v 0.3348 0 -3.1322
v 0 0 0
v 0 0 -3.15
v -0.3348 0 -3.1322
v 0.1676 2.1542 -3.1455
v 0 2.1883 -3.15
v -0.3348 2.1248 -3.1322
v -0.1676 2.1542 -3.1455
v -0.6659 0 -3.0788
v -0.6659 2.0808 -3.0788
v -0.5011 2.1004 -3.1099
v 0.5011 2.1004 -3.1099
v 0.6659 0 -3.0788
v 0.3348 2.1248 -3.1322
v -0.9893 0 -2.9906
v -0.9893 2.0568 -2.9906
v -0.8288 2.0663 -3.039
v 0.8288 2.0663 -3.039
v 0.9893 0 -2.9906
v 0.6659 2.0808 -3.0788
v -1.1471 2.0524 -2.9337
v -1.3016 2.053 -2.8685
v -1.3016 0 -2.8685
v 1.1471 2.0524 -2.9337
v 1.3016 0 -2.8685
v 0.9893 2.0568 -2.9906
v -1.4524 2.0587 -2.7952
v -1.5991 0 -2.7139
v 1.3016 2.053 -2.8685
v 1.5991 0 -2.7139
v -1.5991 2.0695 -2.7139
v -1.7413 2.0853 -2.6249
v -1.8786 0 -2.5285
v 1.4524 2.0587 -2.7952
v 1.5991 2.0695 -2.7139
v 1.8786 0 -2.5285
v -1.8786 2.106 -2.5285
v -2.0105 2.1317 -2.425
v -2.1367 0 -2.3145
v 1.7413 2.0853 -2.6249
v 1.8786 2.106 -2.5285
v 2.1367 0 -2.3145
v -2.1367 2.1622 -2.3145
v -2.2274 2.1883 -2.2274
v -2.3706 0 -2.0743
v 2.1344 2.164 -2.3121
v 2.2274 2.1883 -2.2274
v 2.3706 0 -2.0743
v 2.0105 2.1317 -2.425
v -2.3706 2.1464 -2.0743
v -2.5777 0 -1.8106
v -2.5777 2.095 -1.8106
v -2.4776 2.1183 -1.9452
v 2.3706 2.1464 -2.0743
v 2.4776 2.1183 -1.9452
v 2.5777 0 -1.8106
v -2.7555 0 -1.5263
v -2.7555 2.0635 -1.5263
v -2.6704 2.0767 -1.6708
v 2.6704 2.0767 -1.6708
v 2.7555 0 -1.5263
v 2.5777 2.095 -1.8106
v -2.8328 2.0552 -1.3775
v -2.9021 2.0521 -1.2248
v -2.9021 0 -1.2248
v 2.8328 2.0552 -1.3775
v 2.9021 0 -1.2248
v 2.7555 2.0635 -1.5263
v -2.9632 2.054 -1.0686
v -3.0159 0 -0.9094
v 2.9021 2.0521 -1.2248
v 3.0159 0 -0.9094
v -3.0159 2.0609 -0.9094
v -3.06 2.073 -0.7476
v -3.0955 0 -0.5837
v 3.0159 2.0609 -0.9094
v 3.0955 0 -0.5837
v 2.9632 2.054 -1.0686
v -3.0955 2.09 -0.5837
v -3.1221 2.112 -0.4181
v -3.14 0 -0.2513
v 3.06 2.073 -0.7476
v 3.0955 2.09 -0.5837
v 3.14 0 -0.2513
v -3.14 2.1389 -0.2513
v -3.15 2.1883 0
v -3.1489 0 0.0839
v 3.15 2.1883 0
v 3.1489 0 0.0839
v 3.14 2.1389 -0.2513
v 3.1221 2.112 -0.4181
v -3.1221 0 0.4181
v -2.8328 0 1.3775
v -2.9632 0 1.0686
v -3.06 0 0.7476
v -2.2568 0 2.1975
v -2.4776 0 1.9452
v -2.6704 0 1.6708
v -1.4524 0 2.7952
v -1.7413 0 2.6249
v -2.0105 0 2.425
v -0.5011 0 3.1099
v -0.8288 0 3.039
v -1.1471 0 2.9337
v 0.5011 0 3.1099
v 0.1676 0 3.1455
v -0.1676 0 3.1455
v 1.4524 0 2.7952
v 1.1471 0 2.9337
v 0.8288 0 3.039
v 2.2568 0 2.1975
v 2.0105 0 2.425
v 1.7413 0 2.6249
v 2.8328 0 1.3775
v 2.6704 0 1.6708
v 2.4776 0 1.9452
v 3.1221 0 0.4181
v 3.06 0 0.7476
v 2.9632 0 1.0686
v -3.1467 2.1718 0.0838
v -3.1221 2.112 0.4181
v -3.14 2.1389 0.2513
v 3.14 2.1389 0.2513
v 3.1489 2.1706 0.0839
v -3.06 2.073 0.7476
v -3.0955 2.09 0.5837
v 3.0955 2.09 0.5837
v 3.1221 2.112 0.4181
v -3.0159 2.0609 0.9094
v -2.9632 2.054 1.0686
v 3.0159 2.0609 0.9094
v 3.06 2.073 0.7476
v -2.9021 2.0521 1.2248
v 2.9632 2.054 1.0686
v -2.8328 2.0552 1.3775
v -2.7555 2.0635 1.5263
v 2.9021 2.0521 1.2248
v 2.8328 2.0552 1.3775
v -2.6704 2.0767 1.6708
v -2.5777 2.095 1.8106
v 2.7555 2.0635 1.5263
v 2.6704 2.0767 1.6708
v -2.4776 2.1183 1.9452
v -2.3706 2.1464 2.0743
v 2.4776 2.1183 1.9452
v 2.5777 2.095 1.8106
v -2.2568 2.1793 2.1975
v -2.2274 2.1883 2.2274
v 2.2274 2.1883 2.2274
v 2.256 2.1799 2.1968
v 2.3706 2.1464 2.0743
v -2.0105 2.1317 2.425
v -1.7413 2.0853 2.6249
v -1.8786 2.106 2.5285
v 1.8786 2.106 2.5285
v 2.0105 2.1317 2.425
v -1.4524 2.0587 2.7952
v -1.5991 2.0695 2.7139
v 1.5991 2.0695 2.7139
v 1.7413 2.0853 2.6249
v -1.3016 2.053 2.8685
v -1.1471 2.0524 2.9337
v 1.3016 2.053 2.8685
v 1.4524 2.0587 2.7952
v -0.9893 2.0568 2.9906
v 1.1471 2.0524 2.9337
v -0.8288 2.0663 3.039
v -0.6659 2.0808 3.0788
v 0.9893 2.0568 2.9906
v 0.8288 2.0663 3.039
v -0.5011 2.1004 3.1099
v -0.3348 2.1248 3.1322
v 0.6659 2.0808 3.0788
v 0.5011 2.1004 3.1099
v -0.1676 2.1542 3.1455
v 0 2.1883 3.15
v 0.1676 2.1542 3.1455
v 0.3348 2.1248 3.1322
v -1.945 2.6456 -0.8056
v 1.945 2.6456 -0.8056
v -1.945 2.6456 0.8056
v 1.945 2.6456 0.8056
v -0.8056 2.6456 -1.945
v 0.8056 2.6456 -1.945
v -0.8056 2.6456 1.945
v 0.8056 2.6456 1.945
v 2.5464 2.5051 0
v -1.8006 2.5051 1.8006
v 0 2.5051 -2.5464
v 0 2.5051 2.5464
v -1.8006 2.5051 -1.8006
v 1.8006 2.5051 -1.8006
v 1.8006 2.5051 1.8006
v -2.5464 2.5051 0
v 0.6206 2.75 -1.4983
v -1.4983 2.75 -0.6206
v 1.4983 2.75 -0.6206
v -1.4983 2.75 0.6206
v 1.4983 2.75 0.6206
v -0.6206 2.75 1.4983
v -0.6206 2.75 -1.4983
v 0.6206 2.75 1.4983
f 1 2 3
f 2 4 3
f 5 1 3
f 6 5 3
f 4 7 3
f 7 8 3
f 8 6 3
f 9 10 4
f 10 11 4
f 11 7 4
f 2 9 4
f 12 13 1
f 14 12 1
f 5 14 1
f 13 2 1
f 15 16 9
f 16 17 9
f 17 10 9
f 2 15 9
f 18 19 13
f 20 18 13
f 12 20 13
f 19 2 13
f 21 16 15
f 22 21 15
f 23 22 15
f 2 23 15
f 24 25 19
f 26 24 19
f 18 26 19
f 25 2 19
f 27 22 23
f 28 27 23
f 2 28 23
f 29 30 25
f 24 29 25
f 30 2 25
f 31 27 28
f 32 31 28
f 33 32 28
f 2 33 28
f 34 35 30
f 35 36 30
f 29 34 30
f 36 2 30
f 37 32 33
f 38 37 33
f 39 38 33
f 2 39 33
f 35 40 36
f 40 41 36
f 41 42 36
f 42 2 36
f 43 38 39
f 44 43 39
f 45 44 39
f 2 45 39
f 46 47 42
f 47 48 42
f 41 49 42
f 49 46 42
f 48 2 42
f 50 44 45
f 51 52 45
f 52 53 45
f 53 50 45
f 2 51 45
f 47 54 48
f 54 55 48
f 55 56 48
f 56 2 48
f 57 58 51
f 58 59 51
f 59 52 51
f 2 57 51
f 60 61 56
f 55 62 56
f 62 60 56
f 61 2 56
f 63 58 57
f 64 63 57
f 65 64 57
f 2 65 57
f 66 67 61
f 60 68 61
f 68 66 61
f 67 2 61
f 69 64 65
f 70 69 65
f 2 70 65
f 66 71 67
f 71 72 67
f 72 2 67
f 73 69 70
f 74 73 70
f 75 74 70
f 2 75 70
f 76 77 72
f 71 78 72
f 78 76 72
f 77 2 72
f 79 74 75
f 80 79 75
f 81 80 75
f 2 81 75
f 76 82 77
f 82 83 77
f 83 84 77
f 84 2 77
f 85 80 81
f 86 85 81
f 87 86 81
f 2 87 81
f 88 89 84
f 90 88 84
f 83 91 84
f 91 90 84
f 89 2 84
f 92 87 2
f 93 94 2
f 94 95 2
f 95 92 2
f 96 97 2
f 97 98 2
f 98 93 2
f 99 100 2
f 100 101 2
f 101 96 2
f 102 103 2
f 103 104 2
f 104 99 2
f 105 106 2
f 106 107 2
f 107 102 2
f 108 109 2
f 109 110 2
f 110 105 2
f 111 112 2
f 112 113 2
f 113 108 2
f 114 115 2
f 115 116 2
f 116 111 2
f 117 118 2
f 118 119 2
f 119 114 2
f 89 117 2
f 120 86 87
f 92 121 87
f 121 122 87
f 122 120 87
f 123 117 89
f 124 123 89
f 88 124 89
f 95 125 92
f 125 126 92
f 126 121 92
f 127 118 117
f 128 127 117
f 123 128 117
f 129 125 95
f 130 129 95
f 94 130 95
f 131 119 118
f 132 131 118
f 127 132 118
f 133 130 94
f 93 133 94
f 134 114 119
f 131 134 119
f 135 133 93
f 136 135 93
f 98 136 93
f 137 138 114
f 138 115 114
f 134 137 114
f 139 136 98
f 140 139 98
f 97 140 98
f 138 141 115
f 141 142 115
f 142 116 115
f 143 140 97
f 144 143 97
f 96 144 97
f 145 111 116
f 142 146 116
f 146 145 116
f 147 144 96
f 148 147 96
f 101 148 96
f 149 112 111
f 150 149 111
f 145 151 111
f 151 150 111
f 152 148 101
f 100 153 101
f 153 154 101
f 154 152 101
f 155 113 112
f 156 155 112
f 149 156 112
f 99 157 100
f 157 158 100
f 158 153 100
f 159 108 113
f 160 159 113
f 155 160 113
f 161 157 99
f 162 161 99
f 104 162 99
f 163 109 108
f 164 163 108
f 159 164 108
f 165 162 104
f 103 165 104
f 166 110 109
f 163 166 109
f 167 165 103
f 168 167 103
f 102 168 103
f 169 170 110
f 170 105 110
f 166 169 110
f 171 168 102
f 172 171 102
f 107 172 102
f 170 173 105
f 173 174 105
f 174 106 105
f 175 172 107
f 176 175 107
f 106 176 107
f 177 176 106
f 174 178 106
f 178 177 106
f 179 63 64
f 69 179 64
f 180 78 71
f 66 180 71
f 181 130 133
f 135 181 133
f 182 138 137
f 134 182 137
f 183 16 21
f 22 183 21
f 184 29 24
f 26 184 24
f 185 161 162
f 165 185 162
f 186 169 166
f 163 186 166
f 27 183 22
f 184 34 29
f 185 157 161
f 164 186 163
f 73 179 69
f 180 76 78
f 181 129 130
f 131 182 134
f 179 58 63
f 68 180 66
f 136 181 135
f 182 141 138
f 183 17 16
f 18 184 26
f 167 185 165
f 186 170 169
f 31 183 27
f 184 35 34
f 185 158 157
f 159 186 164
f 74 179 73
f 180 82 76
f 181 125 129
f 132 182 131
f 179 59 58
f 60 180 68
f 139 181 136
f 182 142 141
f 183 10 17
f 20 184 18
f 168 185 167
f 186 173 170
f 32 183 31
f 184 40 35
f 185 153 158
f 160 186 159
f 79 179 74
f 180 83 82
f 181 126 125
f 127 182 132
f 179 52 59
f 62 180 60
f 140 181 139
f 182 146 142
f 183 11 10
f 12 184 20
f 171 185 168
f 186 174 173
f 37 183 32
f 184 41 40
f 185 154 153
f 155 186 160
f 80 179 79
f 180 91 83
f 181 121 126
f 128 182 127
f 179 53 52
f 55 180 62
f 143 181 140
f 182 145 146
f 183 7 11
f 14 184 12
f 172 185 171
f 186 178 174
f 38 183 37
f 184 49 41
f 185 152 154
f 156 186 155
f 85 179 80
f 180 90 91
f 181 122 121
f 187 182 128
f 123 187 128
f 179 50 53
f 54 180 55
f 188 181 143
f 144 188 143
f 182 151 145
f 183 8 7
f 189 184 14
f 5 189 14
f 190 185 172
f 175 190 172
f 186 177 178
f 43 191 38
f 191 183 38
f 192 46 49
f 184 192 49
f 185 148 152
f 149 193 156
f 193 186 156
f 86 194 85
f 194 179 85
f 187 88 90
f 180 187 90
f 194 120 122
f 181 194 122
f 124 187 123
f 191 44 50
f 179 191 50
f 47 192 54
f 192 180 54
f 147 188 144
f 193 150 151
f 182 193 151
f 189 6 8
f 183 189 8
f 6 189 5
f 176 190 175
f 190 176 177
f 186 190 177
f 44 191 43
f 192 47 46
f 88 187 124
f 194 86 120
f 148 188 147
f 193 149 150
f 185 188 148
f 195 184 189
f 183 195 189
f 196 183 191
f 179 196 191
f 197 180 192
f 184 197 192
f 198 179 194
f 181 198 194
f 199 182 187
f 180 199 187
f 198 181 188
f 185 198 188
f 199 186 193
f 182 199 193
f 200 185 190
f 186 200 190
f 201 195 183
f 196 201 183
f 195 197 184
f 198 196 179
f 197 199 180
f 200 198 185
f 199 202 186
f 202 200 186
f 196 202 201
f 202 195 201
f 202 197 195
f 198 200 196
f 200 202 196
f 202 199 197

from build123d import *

# Parameters (mm, degrees)
SKETCH1_R           = 3.25
BOSS_EXTRUDE1_DEPTH = 4
BOSS_EXTRUDE2_DEPTH = 1
CHAMFER1_SIZE       = 0.88
CHAMFER1_SIZE_2     = 1
BOSS_EXTRUDE3_DEPTH = 0.5
CHAMFER2_SIZE       = 1.07
CHAMFER2_SIZE_2     = 0.5
SCALE1_SCALE_X      = 1
SCALE1_SCALE_Y      = 0.5
SCALE1_SCALE_Z      = 1
SKETCH4_R           = 3.45
SKETCH4_R_2         = 3.15
CUT_EXTRUDE1_DEPTH  = 6.356071494


with BuildPart() as part:
    # Sketch1 → Boss-Extrude1 (new body)
    with BuildSketch(Plane(origin=(0, 0, 0), x_dir=(1, 0, 0), z_dir=(0, 1, 0))):
        with Locations(Location((0, 0, 0), (0, 0, 270))):
            Circle(SKETCH1_R)
    extrude(amount=BOSS_EXTRUDE1_DEPTH)

    # Sketch2 → Boss-Extrude2 (add)
    with BuildSketch(Plane(origin=(0, 4, 0), x_dir=(1, 0, 0), z_dir=(0, 1, 0))):
        Polygon((0, 2.556139813), (-1.807463795, 1.807463795), (-2.556139813, 0), (-1.807463795, -1.807463795), (0, -2.556139813), (1.807463795, -1.807463795), (2.556139813, 0), (1.807463795, 1.807463795), align=None)
    extrude(amount=BOSS_EXTRUDE2_DEPTH)

    # Chamfer1
    # the kernel refuses this chamfer: 1, 0.88 mm, written as the material it adds along each edge
    with BuildSketch(Plane(origin=(-4.18730229, 4, 0.821702415), x_dir=(-0.38268343236508967, 0, 0.9238795325112867), z_dir=(0.9238795325112868, 0, 0.38268343236508967))) as chamfer1_piece_1_section:
        Polygon((CHAMFER1_SIZE, 0), (0, -CHAMFER1_SIZE_2), (0, 0), align=None)
    chamfer1_piece_1 = extrude(amount=7.108221963, mode=Mode.PRIVATE)
    chamfer1_piece_1 = chamfer1_piece_1 & Plane(origin=(0, 4, 0), x_dir=(0, 0, 1), z_dir=(0, -1, 0)) * Cylinder(3.25, 19, mode=Mode.PRIVATE)
    chamfer1_piece_1 = split(chamfer1_piece_1, bisect_by=Plane(origin=(-2.504502352, 4, 0.124663858), z_dir=(0.9238795325112868, 0, -0.38268343236508956)), keep=Keep.TOP, mode=Mode.PRIVATE)
    chamfer1_piece_1 = split(chamfer1_piece_1, bisect_by=Plane(origin=(-2.960869844, 4, 3.782572258), z_dir=(-0.38268343236508945, 0, -0.9238795325112868)), keep=Keep.TOP, mode=Mode.PRIVATE)
    chamfer1_piece_1 = split(chamfer1_piece_1, bisect_by=Plane(origin=(-4.18730229, 5, 0.821702415), z_dir=(0, -1, 0)), keep=Keep.TOP, mode=Mode.PRIVATE)
    add(chamfer1_piece_1)
    with BuildSketch(Plane(origin=(-3.541901193, 4, -2.379838494), x_dir=(-0.9238795325112868, 0, 0.38268343236508956), z_dir=(0.38268343236508956, 0, 0.9238795325112868))) as chamfer1_piece_2_section:
        Polygon((CHAMFER1_SIZE, 0), (0, -CHAMFER1_SIZE_2), (0, 0), align=None)
    chamfer1_piece_2 = extrude(amount=7.108221963, mode=Mode.PRIVATE)
    chamfer1_piece_2 = chamfer1_piece_2 & Plane(origin=(0, 4, 0), x_dir=(0, 0, 1), z_dir=(0, -1, 0)) * Cylinder(3.25, 19, mode=Mode.PRIVATE)
    chamfer1_piece_2 = split(chamfer1_piece_2, bisect_by=Plane(origin=(-1.859101256, 4, -1.682799937), z_dir=(0.923879532511287, 0, 0.3826834323650895)), keep=Keep.TOP, mode=Mode.PRIVATE)
    chamfer1_piece_2 = split(chamfer1_piece_2, bisect_by=Plane(origin=(-4.768333639, 4, 0.581031349), z_dir=(0.38268343236508967, 0, -0.9238795325112868)), keep=Keep.TOP, mode=Mode.PRIVATE)
    chamfer1_piece_2 = split(chamfer1_piece_2, bisect_by=Plane(origin=(-3.541901193, 5, -2.379838494), z_dir=(0, -1, 0)), keep=Keep.TOP, mode=Mode.PRIVATE)
    add(chamfer1_piece_2)
    with BuildSketch(Plane(origin=(-0.821702415, 4, -4.18730229), x_dir=(-0.9238795325112868, 0, -0.3826834323650895), z_dir=(-0.3826834323650895, 0, 0.923879532511287))) as chamfer1_piece_3_section:
        Polygon((CHAMFER1_SIZE, 0), (0, -CHAMFER1_SIZE_2), (0, 0), align=None)
    chamfer1_piece_3 = extrude(amount=7.108221963, mode=Mode.PRIVATE)
    chamfer1_piece_3 = chamfer1_piece_3 & Plane(origin=(0, 4, 0), x_dir=(0, 0, 1), z_dir=(0, -1, 0)) * Cylinder(3.25, 19, mode=Mode.PRIVATE)
    chamfer1_piece_3 = split(chamfer1_piece_3, bisect_by=Plane(origin=(-0.124663858, 4, -2.504502352), z_dir=(0.38268343236508945, 0, 0.923879532511287)), keep=Keep.TOP, mode=Mode.PRIVATE)
    chamfer1_piece_3 = split(chamfer1_piece_3, bisect_by=Plane(origin=(-3.782572258, 4, -2.960869844), z_dir=(0.9238795325112868, 0, -0.38268343236508956)), keep=Keep.TOP, mode=Mode.PRIVATE)
    chamfer1_piece_3 = split(chamfer1_piece_3, bisect_by=Plane(origin=(-0.821702415, 5, -4.18730229), z_dir=(0, -1, 0)), keep=Keep.TOP, mode=Mode.PRIVATE)
    add(chamfer1_piece_3)
    with BuildSketch(Plane(origin=(2.379838494, 4, -3.541901193), x_dir=(-0.38268343236508945, 0, -0.923879532511287), z_dir=(-0.923879532511287, 0, 0.38268343236508945))) as chamfer1_piece_4_section:
        Polygon((CHAMFER1_SIZE, 0), (0, -CHAMFER1_SIZE_2), (0, 0), align=None)
    chamfer1_piece_4 = extrude(amount=7.108221963, mode=Mode.PRIVATE)
    chamfer1_piece_4 = chamfer1_piece_4 & Plane(origin=(0, 4, 0), x_dir=(0, 0, 1), z_dir=(0, -1, 0)) * Cylinder(3.25, 19, mode=Mode.PRIVATE)
    chamfer1_piece_4 = split(chamfer1_piece_4, bisect_by=Plane(origin=(1.682799937, 4, -1.859101256), z_dir=(-0.3826834323650897, 0, 0.9238795325112867)), keep=Keep.TOP, mode=Mode.PRIVATE)
    chamfer1_piece_4 = split(chamfer1_piece_4, bisect_by=Plane(origin=(-0.581031349, 4, -4.768333639), z_dir=(0.923879532511287, 0, 0.3826834323650895)), keep=Keep.TOP, mode=Mode.PRIVATE)
    chamfer1_piece_4 = split(chamfer1_piece_4, bisect_by=Plane(origin=(2.379838494, 5, -3.541901193), z_dir=(0, -1, 0)), keep=Keep.TOP, mode=Mode.PRIVATE)
    add(chamfer1_piece_4)
    with BuildSketch(Plane(origin=(4.18730229, 4, -0.821702415), x_dir=(0.3826834323650897, 0, -0.9238795325112867), z_dir=(-0.9238795325112868, 0, -0.3826834323650898))) as chamfer1_piece_5_section:
        Polygon((CHAMFER1_SIZE, 0), (0, -CHAMFER1_SIZE_2), (0, 0), align=None)
    chamfer1_piece_5 = extrude(amount=7.108221963, mode=Mode.PRIVATE)
    chamfer1_piece_5 = chamfer1_piece_5 & Plane(origin=(0, 4, 0), x_dir=(0, 0, 1), z_dir=(0, -1, 0)) * Cylinder(3.25, 19, mode=Mode.PRIVATE)
    chamfer1_piece_5 = split(chamfer1_piece_5, bisect_by=Plane(origin=(2.960869844, 4, -3.782572258), z_dir=(0.38268343236508945, 0, 0.923879532511287)), keep=Keep.TOP, mode=Mode.PRIVATE)
    chamfer1_piece_5 = split(chamfer1_piece_5, bisect_by=Plane(origin=(2.504502352, 4, -0.124663858), z_dir=(-0.923879532511287, 0, 0.3826834323650893)), keep=Keep.TOP, mode=Mode.PRIVATE)
    chamfer1_piece_5 = split(chamfer1_piece_5, bisect_by=Plane(origin=(4.18730229, 5, -0.821702415), z_dir=(0, -1, 0)), keep=Keep.TOP, mode=Mode.PRIVATE)
    add(chamfer1_piece_5)
    with BuildSketch(Plane(origin=(3.541901193, 4, 2.379838494), x_dir=(0.9238795325112868, 0, -0.3826834323650893), z_dir=(-0.3826834323650893, 0, -0.923879532511287))) as chamfer1_piece_6_section:
        Polygon((CHAMFER1_SIZE, 0), (0, -CHAMFER1_SIZE_2), (0, 0), align=None)
    chamfer1_piece_6 = extrude(amount=7.108221963, mode=Mode.PRIVATE)
    chamfer1_piece_6 = chamfer1_piece_6 & Plane(origin=(0, 4, 0), x_dir=(0, 0, 1), z_dir=(0, -1, 0)) * Cylinder(3.25, 19, mode=Mode.PRIVATE)
    chamfer1_piece_6 = split(chamfer1_piece_6, bisect_by=Plane(origin=(1.859101256, 4, 1.682799937), z_dir=(-0.9238795325112867, 0, -0.3826834323650898)), keep=Keep.TOP, mode=Mode.PRIVATE)
    chamfer1_piece_6 = split(chamfer1_piece_6, bisect_by=Plane(origin=(4.768333639, 4, -0.581031349), z_dir=(-0.3826834323650897, 0, 0.9238795325112867)), keep=Keep.TOP, mode=Mode.PRIVATE)
    chamfer1_piece_6 = split(chamfer1_piece_6, bisect_by=Plane(origin=(3.541901193, 5, 2.379838494), z_dir=(0, -1, 0)), keep=Keep.TOP, mode=Mode.PRIVATE)
    add(chamfer1_piece_6)
    with BuildSketch(Plane(origin=(0.821702415, 4, 4.18730229), x_dir=(0.9238795325112867, 0, 0.3826834323650898), z_dir=(0.3826834323650898, 0, -0.9238795325112867))) as chamfer1_piece_7_section:
        Polygon((CHAMFER1_SIZE, 0), (0, -CHAMFER1_SIZE_2), (0, 0), align=None)
    chamfer1_piece_7 = extrude(amount=7.108221963, mode=Mode.PRIVATE)
    chamfer1_piece_7 = chamfer1_piece_7 & Plane(origin=(0, 4, 0), x_dir=(0, 0, 1), z_dir=(0, -1, 0)) * Cylinder(3.25, 19, mode=Mode.PRIVATE)
    chamfer1_piece_7 = split(chamfer1_piece_7, bisect_by=Plane(origin=(0.124663858, 4, 2.504502352), z_dir=(-0.38268343236508945, 0, -0.9238795325112868)), keep=Keep.TOP, mode=Mode.PRIVATE)
    chamfer1_piece_7 = split(chamfer1_piece_7, bisect_by=Plane(origin=(3.782572258, 4, 2.960869844), z_dir=(-0.923879532511287, 0, 0.3826834323650893)), keep=Keep.TOP, mode=Mode.PRIVATE)
    chamfer1_piece_7 = split(chamfer1_piece_7, bisect_by=Plane(origin=(0.821702415, 5, 4.18730229), z_dir=(0, -1, 0)), keep=Keep.TOP, mode=Mode.PRIVATE)
    add(chamfer1_piece_7)
    with BuildSketch(Plane(origin=(-2.379838494, 4, 3.541901193), x_dir=(0.3826834323650895, 0, 0.9238795325112868), z_dir=(0.923879532511287, 0, -0.3826834323650895))) as chamfer1_piece_8_section:
        Polygon((CHAMFER1_SIZE, 0), (0, -CHAMFER1_SIZE_2), (0, 0), align=None)
    chamfer1_piece_8 = extrude(amount=7.108221963, mode=Mode.PRIVATE)
    chamfer1_piece_8 = chamfer1_piece_8 & Plane(origin=(0, 4, 0), x_dir=(0, 0, 1), z_dir=(0, -1, 0)) * Cylinder(3.25, 19, mode=Mode.PRIVATE)
    chamfer1_piece_8 = split(chamfer1_piece_8, bisect_by=Plane(origin=(-1.682799937, 4, 1.859101256), z_dir=(0.38268343236508967, 0, -0.9238795325112868)), keep=Keep.TOP, mode=Mode.PRIVATE)
    chamfer1_piece_8 = split(chamfer1_piece_8, bisect_by=Plane(origin=(0.581031349, 4, 4.768333639), z_dir=(-0.9238795325112867, 0, -0.3826834323650898)), keep=Keep.TOP, mode=Mode.PRIVATE)
    chamfer1_piece_8 = split(chamfer1_piece_8, bisect_by=Plane(origin=(-2.379838494, 5, 3.541901193), z_dir=(0, -1, 0)), keep=Keep.TOP, mode=Mode.PRIVATE)
    add(chamfer1_piece_8)
    with BuildSketch(Plane(origin=(-3.541901193, 4, -2.379838494), x_dir=(-0.9238795325112868, 0, 0.38268343236508956), z_dir=(0.38268343236508956, 0, 0.9238795325112868))) as chamfer1_piece_9a_section:
        Polygon((CHAMFER1_SIZE, 0), (0, -CHAMFER1_SIZE_2), (0, 0), align=None)
    chamfer1_piece_9a = extrude(amount=7.108221963, mode=Mode.PRIVATE)
    chamfer1_piece_9a = chamfer1_piece_9a & Plane(origin=(0, 4, 0), x_dir=(0, 0, 1), z_dir=(0, -1, 0)) * Cylinder(3.25, 19, mode=Mode.PRIVATE)
    chamfer1_piece_9a = split(chamfer1_piece_9a, bisect_by=Plane(origin=(-4.768333639, 4, 0.581031349), z_dir=(-0.38268343236508967, 0, 0.9238795325112868)), keep=Keep.TOP, mode=Mode.PRIVATE)
    chamfer1_piece_9a = split(chamfer1_piece_9a, bisect_by=Plane(origin=(-3.541901193, 5, -2.379838494), z_dir=(0, -1, 0)), keep=Keep.TOP, mode=Mode.PRIVATE)
    with BuildSketch(Plane(origin=(-4.18730229, 4, 0.821702415), x_dir=(-0.38268343236508967, 0, 0.9238795325112867), z_dir=(0.9238795325112868, 0, 0.38268343236508967))) as chamfer1_piece_9b_section:
        Polygon((CHAMFER1_SIZE, 0), (0, -CHAMFER1_SIZE_2), (0, 0), align=None)
    chamfer1_piece_9b = extrude(amount=7.108221963, mode=Mode.PRIVATE)
    chamfer1_piece_9b = chamfer1_piece_9b & Plane(origin=(0, 4, 0), x_dir=(0, 0, 1), z_dir=(0, -1, 0)) * Cylinder(3.25, 19, mode=Mode.PRIVATE)
    chamfer1_piece_9b = split(chamfer1_piece_9b, bisect_by=Plane(origin=(-2.504502352, 4, 0.124663858), z_dir=(-0.9238795325112868, 0, 0.38268343236508956)), keep=Keep.TOP, mode=Mode.PRIVATE)
    chamfer1_piece_9b = split(chamfer1_piece_9b, bisect_by=Plane(origin=(-4.18730229, 5, 0.821702415), z_dir=(0, -1, 0)), keep=Keep.TOP, mode=Mode.PRIVATE)
    chamfer1_piece_9 = chamfer1_piece_9a & chamfer1_piece_9b
    add(chamfer1_piece_9)
    with BuildSketch(Plane(origin=(-4.18730229, 4, 0.821702415), x_dir=(-0.38268343236508967, 0, 0.9238795325112867), z_dir=(0.9238795325112868, 0, 0.38268343236508967))) as chamfer1_piece_10a_section:
        Polygon((CHAMFER1_SIZE, 0), (0, -CHAMFER1_SIZE_2), (0, 0), align=None)
    chamfer1_piece_10a = extrude(amount=7.108221963, mode=Mode.PRIVATE)
    chamfer1_piece_10a = chamfer1_piece_10a & Plane(origin=(0, 4, 0), x_dir=(0, 0, 1), z_dir=(0, -1, 0)) * Cylinder(3.25, 19, mode=Mode.PRIVATE)
    chamfer1_piece_10a = split(chamfer1_piece_10a, bisect_by=Plane(origin=(-2.960869844, 4, 3.782572258), z_dir=(0.38268343236508945, 0, 0.9238795325112868)), keep=Keep.TOP, mode=Mode.PRIVATE)
    chamfer1_piece_10a = split(chamfer1_piece_10a, bisect_by=Plane(origin=(-4.18730229, 5, 0.821702415), z_dir=(0, -1, 0)), keep=Keep.TOP, mode=Mode.PRIVATE)
    with BuildSketch(Plane(origin=(-2.379838494, 4, 3.541901193), x_dir=(0.3826834323650895, 0, 0.9238795325112868), z_dir=(0.923879532511287, 0, -0.3826834323650895))) as chamfer1_piece_10b_section:
        Polygon((CHAMFER1_SIZE, 0), (0, -CHAMFER1_SIZE_2), (0, 0), align=None)
    chamfer1_piece_10b = extrude(amount=7.108221963, mode=Mode.PRIVATE)
    chamfer1_piece_10b = chamfer1_piece_10b & Plane(origin=(0, 4, 0), x_dir=(0, 0, 1), z_dir=(0, -1, 0)) * Cylinder(3.25, 19, mode=Mode.PRIVATE)
    chamfer1_piece_10b = split(chamfer1_piece_10b, bisect_by=Plane(origin=(-1.682799937, 4, 1.859101256), z_dir=(-0.38268343236508967, 0, 0.9238795325112868)), keep=Keep.TOP, mode=Mode.PRIVATE)
    chamfer1_piece_10b = split(chamfer1_piece_10b, bisect_by=Plane(origin=(-2.379838494, 5, 3.541901193), z_dir=(0, -1, 0)), keep=Keep.TOP, mode=Mode.PRIVATE)
    chamfer1_piece_10 = chamfer1_piece_10a & chamfer1_piece_10b
    add(chamfer1_piece_10)
    with BuildSketch(Plane(origin=(-0.821702415, 4, -4.18730229), x_dir=(-0.9238795325112868, 0, -0.3826834323650895), z_dir=(-0.3826834323650895, 0, 0.923879532511287))) as chamfer1_piece_11a_section:
        Polygon((CHAMFER1_SIZE, 0), (0, -CHAMFER1_SIZE_2), (0, 0), align=None)
    chamfer1_piece_11a = extrude(amount=7.108221963, mode=Mode.PRIVATE)
    chamfer1_piece_11a = chamfer1_piece_11a & Plane(origin=(0, 4, 0), x_dir=(0, 0, 1), z_dir=(0, -1, 0)) * Cylinder(3.25, 19, mode=Mode.PRIVATE)
    chamfer1_piece_11a = split(chamfer1_piece_11a, bisect_by=Plane(origin=(-3.782572258, 4, -2.960869844), z_dir=(-0.9238795325112868, 0, 0.38268343236508956)), keep=Keep.TOP, mode=Mode.PRIVATE)
    chamfer1_piece_11a = split(chamfer1_piece_11a, bisect_by=Plane(origin=(-0.821702415, 5, -4.18730229), z_dir=(0, -1, 0)), keep=Keep.TOP, mode=Mode.PRIVATE)
    with BuildSketch(Plane(origin=(-3.541901193, 4, -2.379838494), x_dir=(-0.9238795325112868, 0, 0.38268343236508956), z_dir=(0.38268343236508956, 0, 0.9238795325112868))) as chamfer1_piece_11b_section:
        Polygon((CHAMFER1_SIZE, 0), (0, -CHAMFER1_SIZE_2), (0, 0), align=None)
    chamfer1_piece_11b = extrude(amount=7.108221963, mode=Mode.PRIVATE)
    chamfer1_piece_11b = chamfer1_piece_11b & Plane(origin=(0, 4, 0), x_dir=(0, 0, 1), z_dir=(0, -1, 0)) * Cylinder(3.25, 19, mode=Mode.PRIVATE)
    chamfer1_piece_11b = split(chamfer1_piece_11b, bisect_by=Plane(origin=(-1.859101256, 4, -1.682799937), z_dir=(-0.923879532511287, 0, -0.3826834323650895)), keep=Keep.TOP, mode=Mode.PRIVATE)
    chamfer1_piece_11b = split(chamfer1_piece_11b, bisect_by=Plane(origin=(-3.541901193, 5, -2.379838494), z_dir=(0, -1, 0)), keep=Keep.TOP, mode=Mode.PRIVATE)
    chamfer1_piece_11 = chamfer1_piece_11a & chamfer1_piece_11b
    add(chamfer1_piece_11)
    with BuildSketch(Plane(origin=(2.379838494, 4, -3.541901193), x_dir=(-0.38268343236508945, 0, -0.923879532511287), z_dir=(-0.923879532511287, 0, 0.38268343236508945))) as chamfer1_piece_12a_section:
        Polygon((CHAMFER1_SIZE, 0), (0, -CHAMFER1_SIZE_2), (0, 0), align=None)
    chamfer1_piece_12a = extrude(amount=7.108221963, mode=Mode.PRIVATE)
    chamfer1_piece_12a = chamfer1_piece_12a & Plane(origin=(0, 4, 0), x_dir=(0, 0, 1), z_dir=(0, -1, 0)) * Cylinder(3.25, 19, mode=Mode.PRIVATE)
    chamfer1_piece_12a = split(chamfer1_piece_12a, bisect_by=Plane(origin=(-0.581031349, 4, -4.768333639), z_dir=(-0.923879532511287, 0, -0.3826834323650895)), keep=Keep.TOP, mode=Mode.PRIVATE)
    chamfer1_piece_12a = split(chamfer1_piece_12a, bisect_by=Plane(origin=(2.379838494, 5, -3.541901193), z_dir=(0, -1, 0)), keep=Keep.TOP, mode=Mode.PRIVATE)
    with BuildSketch(Plane(origin=(-0.821702415, 4, -4.18730229), x_dir=(-0.9238795325112868, 0, -0.3826834323650895), z_dir=(-0.3826834323650895, 0, 0.923879532511287))) as chamfer1_piece_12b_section:
        Polygon((CHAMFER1_SIZE, 0), (0, -CHAMFER1_SIZE_2), (0, 0), align=None)
    chamfer1_piece_12b = extrude(amount=7.108221963, mode=Mode.PRIVATE)
    chamfer1_piece_12b = chamfer1_piece_12b & Plane(origin=(0, 4, 0), x_dir=(0, 0, 1), z_dir=(0, -1, 0)) * Cylinder(3.25, 19, mode=Mode.PRIVATE)
    chamfer1_piece_12b = split(chamfer1_piece_12b, bisect_by=Plane(origin=(-0.124663858, 4, -2.504502352), z_dir=(-0.38268343236508945, 0, -0.923879532511287)), keep=Keep.TOP, mode=Mode.PRIVATE)
    chamfer1_piece_12b = split(chamfer1_piece_12b, bisect_by=Plane(origin=(-0.821702415, 5, -4.18730229), z_dir=(0, -1, 0)), keep=Keep.TOP, mode=Mode.PRIVATE)
    chamfer1_piece_12 = chamfer1_piece_12a & chamfer1_piece_12b
    add(chamfer1_piece_12)
    with BuildSketch(Plane(origin=(2.379838494, 4, -3.541901193), x_dir=(-0.38268343236508945, 0, -0.923879532511287), z_dir=(-0.923879532511287, 0, 0.38268343236508945))) as chamfer1_piece_13a_section:
        Polygon((CHAMFER1_SIZE, 0), (0, -CHAMFER1_SIZE_2), (0, 0), align=None)
    chamfer1_piece_13a = extrude(amount=7.108221963, mode=Mode.PRIVATE)
    chamfer1_piece_13a = chamfer1_piece_13a & Plane(origin=(0, 4, 0), x_dir=(0, 0, 1), z_dir=(0, -1, 0)) * Cylinder(3.25, 19, mode=Mode.PRIVATE)
    chamfer1_piece_13a = split(chamfer1_piece_13a, bisect_by=Plane(origin=(1.682799937, 4, -1.859101256), z_dir=(0.3826834323650897, 0, -0.9238795325112867)), keep=Keep.TOP, mode=Mode.PRIVATE)
    chamfer1_piece_13a = split(chamfer1_piece_13a, bisect_by=Plane(origin=(2.379838494, 5, -3.541901193), z_dir=(0, -1, 0)), keep=Keep.TOP, mode=Mode.PRIVATE)
    with BuildSketch(Plane(origin=(4.18730229, 4, -0.821702415), x_dir=(0.3826834323650897, 0, -0.9238795325112867), z_dir=(-0.9238795325112868, 0, -0.3826834323650898))) as chamfer1_piece_13b_section:
        Polygon((CHAMFER1_SIZE, 0), (0, -CHAMFER1_SIZE_2), (0, 0), align=None)
    chamfer1_piece_13b = extrude(amount=7.108221963, mode=Mode.PRIVATE)
    chamfer1_piece_13b = chamfer1_piece_13b & Plane(origin=(0, 4, 0), x_dir=(0, 0, 1), z_dir=(0, -1, 0)) * Cylinder(3.25, 19, mode=Mode.PRIVATE)
    chamfer1_piece_13b = split(chamfer1_piece_13b, bisect_by=Plane(origin=(2.960869844, 4, -3.782572258), z_dir=(-0.38268343236508945, 0, -0.923879532511287)), keep=Keep.TOP, mode=Mode.PRIVATE)
    chamfer1_piece_13b = split(chamfer1_piece_13b, bisect_by=Plane(origin=(4.18730229, 5, -0.821702415), z_dir=(0, -1, 0)), keep=Keep.TOP, mode=Mode.PRIVATE)
    chamfer1_piece_13 = chamfer1_piece_13a & chamfer1_piece_13b
    add(chamfer1_piece_13)
    with BuildSketch(Plane(origin=(3.541901193, 4, 2.379838494), x_dir=(0.9238795325112868, 0, -0.3826834323650893), z_dir=(-0.3826834323650893, 0, -0.923879532511287))) as chamfer1_piece_14a_section:
        Polygon((CHAMFER1_SIZE, 0), (0, -CHAMFER1_SIZE_2), (0, 0), align=None)
    chamfer1_piece_14a = extrude(amount=7.108221963, mode=Mode.PRIVATE)
    chamfer1_piece_14a = chamfer1_piece_14a & Plane(origin=(0, 4, 0), x_dir=(0, 0, 1), z_dir=(0, -1, 0)) * Cylinder(3.25, 19, mode=Mode.PRIVATE)
    chamfer1_piece_14a = split(chamfer1_piece_14a, bisect_by=Plane(origin=(4.768333639, 4, -0.581031349), z_dir=(0.3826834323650897, 0, -0.9238795325112867)), keep=Keep.TOP, mode=Mode.PRIVATE)
    chamfer1_piece_14a = split(chamfer1_piece_14a, bisect_by=Plane(origin=(3.541901193, 5, 2.379838494), z_dir=(0, -1, 0)), keep=Keep.TOP, mode=Mode.PRIVATE)
    with BuildSketch(Plane(origin=(4.18730229, 4, -0.821702415), x_dir=(0.3826834323650897, 0, -0.9238795325112867), z_dir=(-0.9238795325112868, 0, -0.3826834323650898))) as chamfer1_piece_14b_section:
        Polygon((CHAMFER1_SIZE, 0), (0, -CHAMFER1_SIZE_2), (0, 0), align=None)
    chamfer1_piece_14b = extrude(amount=7.108221963, mode=Mode.PRIVATE)
    chamfer1_piece_14b = chamfer1_piece_14b & Plane(origin=(0, 4, 0), x_dir=(0, 0, 1), z_dir=(0, -1, 0)) * Cylinder(3.25, 19, mode=Mode.PRIVATE)
    chamfer1_piece_14b = split(chamfer1_piece_14b, bisect_by=Plane(origin=(2.504502352, 4, -0.124663858), z_dir=(0.923879532511287, 0, -0.3826834323650893)), keep=Keep.TOP, mode=Mode.PRIVATE)
    chamfer1_piece_14b = split(chamfer1_piece_14b, bisect_by=Plane(origin=(4.18730229, 5, -0.821702415), z_dir=(0, -1, 0)), keep=Keep.TOP, mode=Mode.PRIVATE)
    chamfer1_piece_14 = chamfer1_piece_14a & chamfer1_piece_14b
    add(chamfer1_piece_14)
    with BuildSketch(Plane(origin=(0.821702415, 4, 4.18730229), x_dir=(0.9238795325112867, 0, 0.3826834323650898), z_dir=(0.3826834323650898, 0, -0.9238795325112867))) as chamfer1_piece_15a_section:
        Polygon((CHAMFER1_SIZE, 0), (0, -CHAMFER1_SIZE_2), (0, 0), align=None)
    chamfer1_piece_15a = extrude(amount=7.108221963, mode=Mode.PRIVATE)
    chamfer1_piece_15a = chamfer1_piece_15a & Plane(origin=(0, 4, 0), x_dir=(0, 0, 1), z_dir=(0, -1, 0)) * Cylinder(3.25, 19, mode=Mode.PRIVATE)
    chamfer1_piece_15a = split(chamfer1_piece_15a, bisect_by=Plane(origin=(3.782572258, 4, 2.960869844), z_dir=(0.923879532511287, 0, -0.3826834323650893)), keep=Keep.TOP, mode=Mode.PRIVATE)
    chamfer1_piece_15a = split(chamfer1_piece_15a, bisect_by=Plane(origin=(0.821702415, 5, 4.18730229), z_dir=(0, -1, 0)), keep=Keep.TOP, mode=Mode.PRIVATE)
    with BuildSketch(Plane(origin=(3.541901193, 4, 2.379838494), x_dir=(0.9238795325112868, 0, -0.3826834323650893), z_dir=(-0.3826834323650893, 0, -0.923879532511287))) as chamfer1_piece_15b_section:
        Polygon((CHAMFER1_SIZE, 0), (0, -CHAMFER1_SIZE_2), (0, 0), align=None)
    chamfer1_piece_15b = extrude(amount=7.108221963, mode=Mode.PRIVATE)
    chamfer1_piece_15b = chamfer1_piece_15b & Plane(origin=(0, 4, 0), x_dir=(0, 0, 1), z_dir=(0, -1, 0)) * Cylinder(3.25, 19, mode=Mode.PRIVATE)
    chamfer1_piece_15b = split(chamfer1_piece_15b, bisect_by=Plane(origin=(1.859101256, 4, 1.682799937), z_dir=(0.9238795325112867, 0, 0.3826834323650898)), keep=Keep.TOP, mode=Mode.PRIVATE)
    chamfer1_piece_15b = split(chamfer1_piece_15b, bisect_by=Plane(origin=(3.541901193, 5, 2.379838494), z_dir=(0, -1, 0)), keep=Keep.TOP, mode=Mode.PRIVATE)
    chamfer1_piece_15 = chamfer1_piece_15a & chamfer1_piece_15b
    add(chamfer1_piece_15)
    with BuildSketch(Plane(origin=(-2.379838494, 4, 3.541901193), x_dir=(0.3826834323650895, 0, 0.9238795325112868), z_dir=(0.923879532511287, 0, -0.3826834323650895))) as chamfer1_piece_16a_section:
        Polygon((CHAMFER1_SIZE, 0), (0, -CHAMFER1_SIZE_2), (0, 0), align=None)
    chamfer1_piece_16a = extrude(amount=7.108221963, mode=Mode.PRIVATE)
    chamfer1_piece_16a = chamfer1_piece_16a & Plane(origin=(0, 4, 0), x_dir=(0, 0, 1), z_dir=(0, -1, 0)) * Cylinder(3.25, 19, mode=Mode.PRIVATE)
    chamfer1_piece_16a = split(chamfer1_piece_16a, bisect_by=Plane(origin=(0.581031349, 4, 4.768333639), z_dir=(0.9238795325112867, 0, 0.3826834323650898)), keep=Keep.TOP, mode=Mode.PRIVATE)
    chamfer1_piece_16a = split(chamfer1_piece_16a, bisect_by=Plane(origin=(-2.379838494, 5, 3.541901193), z_dir=(0, -1, 0)), keep=Keep.TOP, mode=Mode.PRIVATE)
    with BuildSketch(Plane(origin=(0.821702415, 4, 4.18730229), x_dir=(0.9238795325112867, 0, 0.3826834323650898), z_dir=(0.3826834323650898, 0, -0.9238795325112867))) as chamfer1_piece_16b_section:
        Polygon((CHAMFER1_SIZE, 0), (0, -CHAMFER1_SIZE_2), (0, 0), align=None)
    chamfer1_piece_16b = extrude(amount=7.108221963, mode=Mode.PRIVATE)
    chamfer1_piece_16b = chamfer1_piece_16b & Plane(origin=(0, 4, 0), x_dir=(0, 0, 1), z_dir=(0, -1, 0)) * Cylinder(3.25, 19, mode=Mode.PRIVATE)
    chamfer1_piece_16b = split(chamfer1_piece_16b, bisect_by=Plane(origin=(0.124663858, 4, 2.504502352), z_dir=(0.38268343236508945, 0, 0.9238795325112868)), keep=Keep.TOP, mode=Mode.PRIVATE)
    chamfer1_piece_16b = split(chamfer1_piece_16b, bisect_by=Plane(origin=(0.821702415, 5, 4.18730229), z_dir=(0, -1, 0)), keep=Keep.TOP, mode=Mode.PRIVATE)
    chamfer1_piece_16 = chamfer1_piece_16a & chamfer1_piece_16b
    add(chamfer1_piece_16)

    # Sketch3 → Boss-Extrude3 (add)
    with BuildSketch(Plane(origin=(0, 5, 0), x_dir=(1, 0, 0), z_dir=(0, 1, 0))):
        Polygon((-0.620628059, 1.498328678), (-1.498328678, 0.620628059), (-1.498328678, -0.620628059), (-0.620628059, -1.498328678), (0.620628059, -1.498328678), (1.498328678, -0.620628059), (1.498328678, 0.620628059), (0.620628059, 1.498328678), align=None)
    extrude(amount=BOSS_EXTRUDE3_DEPTH)

    # Chamfer2
    # the kernel refuses this chamfer: 1.07, 0.5 mm, written as the material it adds along each edge
    with BuildSketch(Plane(origin=(-3.458646846, 5, -1.339690109), x_dir=(-0.7071067811865447, 0, 0.7071067811865505), z_dir=(0.7071067811865505, 0, 0.7071067811865447))) as chamfer2_piece_1_section:
        Polygon((CHAMFER2_SIZE, 0), (0, -CHAMFER2_SIZE_2), (0, 0), align=None)
    chamfer2_piece_1 = extrude(amount=6.785873199, mode=Mode.PRIVATE)
    chamfer2_piece_1 = split(chamfer2_piece_1, bisect_by=Plane(origin=(-2.396940928, 7.441446714, 1.223494718), z_dir=(-0.2872856253788866, -0.6606278948920248, -0.6935688530644915)), keep=Keep.TOP, mode=Mode.PRIVATE)
    chamfer2_piece_1 = split(chamfer2_piece_1, bisect_by=Plane(origin=(-3.949447553, 6.128621167, -0.154792386), z_dir=(0.2872856253788866, -0.6606278948920248, -0.6935688530644915)), keep=Keep.TOP, mode=Mode.PRIVATE)
    chamfer2_piece_1 = split(chamfer2_piece_1, bisect_by=Plane(origin=(-2.757570472, 4.332221152, -1.049294767), z_dir=(0.6935688530644915, -0.6606278948920248, 0.2872856253788866)), keep=Keep.TOP, mode=Mode.PRIVATE)
    chamfer2_piece_1 = split(chamfer2_piece_1, bisect_by=Plane(origin=(-3.291443308, 4.840737771, -1.408948083), z_dir=(0.6935688530644915, -0.6606278948920248, -0.2872856253788866)), keep=Keep.TOP, mode=Mode.PRIVATE)
    chamfer2_piece_1 = split(chamfer2_piece_1, bisect_by=Plane(origin=(-3.29908018, 4.658527335, -1.339690109), z_dir=(0.42334893073604385, -0.9059667117751339, -1.0602427859705562e-15)), keep=Keep.TOP, mode=Mode.PRIVATE)
    chamfer2_piece_1 = split(chamfer2_piece_1, bisect_by=Plane(origin=(-3.458646846, 6.498881677, -0.639278111), z_dir=(-2.49914370978774e-15, -0.9059667117751338, -0.42334893073604396)), keep=Keep.TOP, mode=Mode.PRIVATE)
    add(chamfer2_piece_1)
    with BuildSketch(Plane(origin=(-1.498328678, 5, -3.3929366), x_dir=(-1, 0, 0), z_dir=(0, 0, 1))) as chamfer2_piece_2_section:
        Polygon((CHAMFER2_SIZE, 0), (0, -CHAMFER2_SIZE_2), (0, 0), align=None)
    chamfer2_piece_2 = extrude(amount=6.785873199, mode=Mode.PRIVATE)
    chamfer2_piece_2 = split(chamfer2_piece_2, bisect_by=Plane(origin=(-2.560034596, 7.441446714, -0.829751772), z_dir=(0.2872856253788866, -0.6606278948920248, -0.6935688530644915)), keep=Keep.TOP, mode=Mode.PRIVATE)
    chamfer2_piece_2 = split(chamfer2_piece_2, bisect_by=Plane(origin=(-1.207933335, 4.332221152, -2.691860225), z_dir=(0.2872856253788866, -0.6606278948920248, 0.6935688530644915)), keep=Keep.TOP, mode=Mode.PRIVATE)
    chamfer2_piece_2 = split(chamfer2_piece_2, bisect_by=Plane(origin=(-1.33112514, 4.840737771, -3.323678627), z_dir=(0.6935688530644915, -0.6606278948920248, 0.2872856253788866)), keep=Keep.TOP, mode=Mode.PRIVATE)
    chamfer2_piece_2 = split(chamfer2_piece_2, bisect_by=Plane(origin=(-2.683226401, 6.128621167, -2.902135893), z_dir=(0.6935688530644915, -0.6606278948920248, -0.2872856253788866)), keep=Keep.TOP, mode=Mode.PRIVATE)
    chamfer2_piece_2 = split(chamfer2_piece_2, bisect_by=Plane(origin=(-1.385498006, 4.658527335, -3.280105928), z_dir=(0.29935289973153084, -0.905966711775134, 0.29935289973153045)), keep=Keep.TOP, mode=Mode.PRIVATE)
    chamfer2_piece_2 = split(chamfer2_piece_2, bisect_by=Plane(origin=(-1.993594751, 6.498881677, -2.897670526), z_dir=(0.2993528997315294, -0.9059667117751339, -0.2993528997315318)), keep=Keep.TOP, mode=Mode.PRIVATE)
    add(chamfer2_piece_2)
    with BuildSketch(Plane(origin=(-3.3929366, 5, 1.498328678), x_dir=(0, 0, 1), z_dir=(1, 0, 0))) as chamfer2_piece_3_section:
        Polygon((CHAMFER2_SIZE, 0), (0, -CHAMFER2_SIZE_2), (0, 0), align=None)
    chamfer2_piece_3 = extrude(amount=6.785873199, mode=Mode.PRIVATE)
    chamfer2_piece_3 = split(chamfer2_piece_3, bisect_by=Plane(origin=(-2.902135893, 6.128621167, 2.683226401), z_dir=(-0.2872856253788866, -0.6606278948920248, -0.6935688530644915)), keep=Keep.TOP, mode=Mode.PRIVATE)
    chamfer2_piece_3 = split(chamfer2_piece_3, bisect_by=Plane(origin=(-0.829751772, 7.441446714, 2.560034596), z_dir=(-0.6935688530644915, -0.6606278948920248, -0.2872856253788866)), keep=Keep.TOP, mode=Mode.PRIVATE)
    chamfer2_piece_3 = split(chamfer2_piece_3, bisect_by=Plane(origin=(-3.323678627, 4.840737771, 1.33112514), z_dir=(0.2872856253788866, -0.6606278948920248, -0.6935688530644915)), keep=Keep.TOP, mode=Mode.PRIVATE)
    chamfer2_piece_3 = split(chamfer2_piece_3, bisect_by=Plane(origin=(-2.691860225, 4.332221152, 1.207933335), z_dir=(0.6935688530644915, -0.6606278948920248, -0.2872856253788866)), keep=Keep.TOP, mode=Mode.PRIVATE)
    chamfer2_piece_3 = split(chamfer2_piece_3, bisect_by=Plane(origin=(-3.280105928, 4.658527335, 1.385498006), z_dir=(0.2993528997315294, -0.9059667117751339, -0.2993528997315318)), keep=Keep.TOP, mode=Mode.PRIVATE)
    chamfer2_piece_3 = split(chamfer2_piece_3, bisect_by=Plane(origin=(-2.897670526, 6.498881677, 1.993594751), z_dir=(-0.299352899731533, -0.9059667117751338, -0.2993528997315284)), keep=Keep.TOP, mode=Mode.PRIVATE)
    add(chamfer2_piece_3)
    with BuildSketch(Plane(origin=(1.339690109, 5, -3.458646846), x_dir=(-0.707106781186548, 0, -0.707106781186547), z_dir=(-0.707106781186547, 0, 0.707106781186548))) as chamfer2_piece_4_section:
        Polygon((CHAMFER2_SIZE, 0), (0, -CHAMFER2_SIZE_2), (0, 0), align=None)
    chamfer2_piece_4 = extrude(amount=6.785873199, mode=Mode.PRIVATE)
    chamfer2_piece_4 = split(chamfer2_piece_4, bisect_by=Plane(origin=(1.408948083, 4.840737771, -3.291443308), z_dir=(0.2872856253788866, -0.6606278948920248, 0.6935688530644915)), keep=Keep.TOP, mode=Mode.PRIVATE)
    chamfer2_piece_4 = split(chamfer2_piece_4, bisect_by=Plane(origin=(1.049294767, 4.332221152, -2.757570472), z_dir=(-0.2872856253788866, -0.6606278948920248, 0.6935688530644915)), keep=Keep.TOP, mode=Mode.PRIVATE)
    chamfer2_piece_4 = split(chamfer2_piece_4, bisect_by=Plane(origin=(0.154792386, 6.128621167, -3.949447553), z_dir=(0.6935688530644915, -0.6606278948920248, 0.2872856253788866)), keep=Keep.TOP, mode=Mode.PRIVATE)
    chamfer2_piece_4 = split(chamfer2_piece_4, bisect_by=Plane(origin=(-1.223494718, 7.441446714, -2.396940928), z_dir=(0.6935688530644915, -0.6606278948920248, -0.2872856253788866)), keep=Keep.TOP, mode=Mode.PRIVATE)
    chamfer2_piece_4 = split(chamfer2_piece_4, bisect_by=Plane(origin=(1.339690109, 4.658527335, -3.29908018), z_dir=(2.499143709787781e-15, -0.9059667117751339, 0.4233489307360439)), keep=Keep.TOP, mode=Mode.PRIVATE)
    chamfer2_piece_4 = split(chamfer2_piece_4, bisect_by=Plane(origin=(0.639278111, 6.498881677, -3.458646846), z_dir=(0.42334893073604385, -0.9059667117751339, -1.0602427859705562e-15)), keep=Keep.TOP, mode=Mode.PRIVATE)
    add(chamfer2_piece_4)
    with BuildSketch(Plane(origin=(3.3929366, 5, -1.498328678), x_dir=(0, 0, -1), z_dir=(-1, 0, 0))) as chamfer2_piece_5_section:
        Polygon((CHAMFER2_SIZE, 0), (0, -CHAMFER2_SIZE_2), (0, 0), align=None)
    chamfer2_piece_5 = extrude(amount=6.785873199, mode=Mode.PRIVATE)
    chamfer2_piece_5 = split(chamfer2_piece_5, bisect_by=Plane(origin=(2.691860225, 4.332221152, -1.207933335), z_dir=(-0.6935688530644915, -0.6606278948920248, 0.2872856253788866)), keep=Keep.TOP, mode=Mode.PRIVATE)
    chamfer2_piece_5 = split(chamfer2_piece_5, bisect_by=Plane(origin=(2.902135893, 6.128621167, -2.683226401), z_dir=(0.2872856253788866, -0.6606278948920248, 0.6935688530644915)), keep=Keep.TOP, mode=Mode.PRIVATE)
    chamfer2_piece_5 = split(chamfer2_piece_5, bisect_by=Plane(origin=(3.323678627, 4.840737771, -1.33112514), z_dir=(-0.2872856253788866, -0.6606278948920248, 0.6935688530644915)), keep=Keep.TOP, mode=Mode.PRIVATE)
    chamfer2_piece_5 = split(chamfer2_piece_5, bisect_by=Plane(origin=(0.829751772, 7.441446714, -2.560034596), z_dir=(0.6935688530644915, -0.6606278948920248, 0.2872856253788866)), keep=Keep.TOP, mode=Mode.PRIVATE)
    chamfer2_piece_5 = split(chamfer2_piece_5, bisect_by=Plane(origin=(2.897670526, 6.498881677, -1.993594751), z_dir=(0.29935289973153084, -0.905966711775134, 0.29935289973153045)), keep=Keep.TOP, mode=Mode.PRIVATE)
    chamfer2_piece_5 = split(chamfer2_piece_5, bisect_by=Plane(origin=(3.280105928, 4.658527335, -1.385498006), z_dir=(-0.2993528997315273, -0.905966711775134, 0.299352899731534)), keep=Keep.TOP, mode=Mode.PRIVATE)
    add(chamfer2_piece_5)
    with BuildSketch(Plane(origin=(3.458646846, 5, 1.339690109), x_dir=(0.7071067811865396, 0, -0.7071067811865555), z_dir=(-0.7071067811865555, 0, -0.7071067811865397))) as chamfer2_piece_6_section:
        Polygon((CHAMFER2_SIZE, 0), (0, -CHAMFER2_SIZE_2), (0, 0), align=None)
    chamfer2_piece_6 = extrude(amount=6.785873199, mode=Mode.PRIVATE)
    chamfer2_piece_6 = split(chamfer2_piece_6, bisect_by=Plane(origin=(2.757570472, 4.332221152, 1.049294767), z_dir=(-0.6935688530644915, -0.6606278948920248, -0.2872856253788866)), keep=Keep.TOP, mode=Mode.PRIVATE)
    chamfer2_piece_6 = split(chamfer2_piece_6, bisect_by=Plane(origin=(3.291443308, 4.840737771, 1.408948083), z_dir=(-0.6935688530644915, -0.6606278948920248, 0.2872856253788866)), keep=Keep.TOP, mode=Mode.PRIVATE)
    chamfer2_piece_6 = split(chamfer2_piece_6, bisect_by=Plane(origin=(2.396940928, 7.441446714, -1.223494718), z_dir=(0.2872856253788866, -0.6606278948920248, 0.6935688530644915)), keep=Keep.TOP, mode=Mode.PRIVATE)
    chamfer2_piece_6 = split(chamfer2_piece_6, bisect_by=Plane(origin=(3.949447553, 6.128621167, 0.154792386), z_dir=(-0.2872856253788866, -0.6606278948920248, 0.6935688530644915)), keep=Keep.TOP, mode=Mode.PRIVATE)
    chamfer2_piece_6 = split(chamfer2_piece_6, bisect_by=Plane(origin=(3.458646846, 6.498881677, 0.639278111), z_dir=(2.499143709787781e-15, -0.9059667117751339, 0.4233489307360439)), keep=Keep.TOP, mode=Mode.PRIVATE)
    chamfer2_piece_6 = split(chamfer2_piece_6, bisect_by=Plane(origin=(3.29908018, 4.658527335, 1.339690109), z_dir=(-0.42334893073604385, -0.9059667117751339, 4.013776261174247e-15)), keep=Keep.TOP, mode=Mode.PRIVATE)
    add(chamfer2_piece_6)
    with BuildSketch(Plane(origin=(1.498328678, 5, 3.3929366), x_dir=(1, 0, 0), z_dir=(0, 0, -1))) as chamfer2_piece_7_section:
        Polygon((CHAMFER2_SIZE, 0), (0, -CHAMFER2_SIZE_2), (0, 0), align=None)
    chamfer2_piece_7 = extrude(amount=6.785873199, mode=Mode.PRIVATE)
    chamfer2_piece_7 = split(chamfer2_piece_7, bisect_by=Plane(origin=(1.207933335, 4.332221152, 2.691860225), z_dir=(-0.2872856253788866, -0.6606278948920248, -0.6935688530644915)), keep=Keep.TOP, mode=Mode.PRIVATE)
    chamfer2_piece_7 = split(chamfer2_piece_7, bisect_by=Plane(origin=(1.33112514, 4.840737771, 3.323678627), z_dir=(-0.6935688530644915, -0.6606278948920248, -0.2872856253788866)), keep=Keep.TOP, mode=Mode.PRIVATE)
    chamfer2_piece_7 = split(chamfer2_piece_7, bisect_by=Plane(origin=(2.683226401, 6.128621167, 2.902135893), z_dir=(-0.6935688530644915, -0.6606278948920248, 0.2872856253788866)), keep=Keep.TOP, mode=Mode.PRIVATE)
    chamfer2_piece_7 = split(chamfer2_piece_7, bisect_by=Plane(origin=(2.560034596, 7.441446714, 0.829751772), z_dir=(-0.2872856253788866, -0.6606278948920248, 0.6935688530644915)), keep=Keep.TOP, mode=Mode.PRIVATE)
    chamfer2_piece_7 = split(chamfer2_piece_7, bisect_by=Plane(origin=(1.385498006, 4.658527335, 3.280105928), z_dir=(-0.299352899731533, -0.9059667117751338, -0.2993528997315284)), keep=Keep.TOP, mode=Mode.PRIVATE)
    chamfer2_piece_7 = split(chamfer2_piece_7, bisect_by=Plane(origin=(1.993594751, 6.498881677, 2.897670526), z_dir=(-0.2993528997315273, -0.905966711775134, 0.299352899731534)), keep=Keep.TOP, mode=Mode.PRIVATE)
    add(chamfer2_piece_7)
    with BuildSketch(Plane(origin=(-1.339690109, 5, 3.458646846), x_dir=(0.707106781186553, 0, 0.7071067811865421), z_dir=(0.7071067811865421, 0, -0.7071067811865529))) as chamfer2_piece_8_section:
        Polygon((CHAMFER2_SIZE, 0), (0, -CHAMFER2_SIZE_2), (0, 0), align=None)
    chamfer2_piece_8 = extrude(amount=6.785873199, mode=Mode.PRIVATE)
    chamfer2_piece_8 = split(chamfer2_piece_8, bisect_by=Plane(origin=(-1.408948083, 4.840737771, 3.291443308), z_dir=(-0.2872856253788866, -0.6606278948920248, -0.6935688530644915)), keep=Keep.TOP, mode=Mode.PRIVATE)
    chamfer2_piece_8 = split(chamfer2_piece_8, bisect_by=Plane(origin=(-0.154792386, 6.128621167, 3.949447553), z_dir=(-0.6935688530644915, -0.6606278948920248, -0.2872856253788866)), keep=Keep.TOP, mode=Mode.PRIVATE)
    chamfer2_piece_8 = split(chamfer2_piece_8, bisect_by=Plane(origin=(-1.049294767, 4.332221152, 2.757570472), z_dir=(0.2872856253788866, -0.6606278948920248, -0.6935688530644915)), keep=Keep.TOP, mode=Mode.PRIVATE)
    chamfer2_piece_8 = split(chamfer2_piece_8, bisect_by=Plane(origin=(1.223494718, 7.441446714, 2.396940928), z_dir=(-0.6935688530644915, -0.6606278948920248, 0.2872856253788866)), keep=Keep.TOP, mode=Mode.PRIVATE)
    chamfer2_piece_8 = split(chamfer2_piece_8, bisect_by=Plane(origin=(-1.339690109, 4.658527335, 3.29908018), z_dir=(-2.49914370978774e-15, -0.9059667117751338, -0.42334893073604396)), keep=Keep.TOP, mode=Mode.PRIVATE)
    chamfer2_piece_8 = split(chamfer2_piece_8, bisect_by=Plane(origin=(-0.639278111, 6.498881677, 3.458646846), z_dir=(-0.42334893073604385, -0.9059667117751339, 4.013776261174247e-15)), keep=Keep.TOP, mode=Mode.PRIVATE)
    add(chamfer2_piece_8)


with BuildPart() as part_1:
    # Scale1: scaled about (0, 0, 0)
    add(part.part.scale((SCALE1_SCALE_X, SCALE1_SCALE_Y, SCALE1_SCALE_Z), about=(0, 0, 0)))

    # Sketch4 → Cut-Extrude1 (cut, through all)
    with BuildSketch(Plane.XZ):
        Circle(SKETCH4_R)
        with Locations(Location((0, 0, 0), (0, 0, 270))):
            Circle(SKETCH4_R_2, mode=Mode.SUBTRACT)
    extrude(amount=-CUT_EXTRUDE1_DEPTH, mode=Mode.SUBTRACT)


solid = part_1.part
